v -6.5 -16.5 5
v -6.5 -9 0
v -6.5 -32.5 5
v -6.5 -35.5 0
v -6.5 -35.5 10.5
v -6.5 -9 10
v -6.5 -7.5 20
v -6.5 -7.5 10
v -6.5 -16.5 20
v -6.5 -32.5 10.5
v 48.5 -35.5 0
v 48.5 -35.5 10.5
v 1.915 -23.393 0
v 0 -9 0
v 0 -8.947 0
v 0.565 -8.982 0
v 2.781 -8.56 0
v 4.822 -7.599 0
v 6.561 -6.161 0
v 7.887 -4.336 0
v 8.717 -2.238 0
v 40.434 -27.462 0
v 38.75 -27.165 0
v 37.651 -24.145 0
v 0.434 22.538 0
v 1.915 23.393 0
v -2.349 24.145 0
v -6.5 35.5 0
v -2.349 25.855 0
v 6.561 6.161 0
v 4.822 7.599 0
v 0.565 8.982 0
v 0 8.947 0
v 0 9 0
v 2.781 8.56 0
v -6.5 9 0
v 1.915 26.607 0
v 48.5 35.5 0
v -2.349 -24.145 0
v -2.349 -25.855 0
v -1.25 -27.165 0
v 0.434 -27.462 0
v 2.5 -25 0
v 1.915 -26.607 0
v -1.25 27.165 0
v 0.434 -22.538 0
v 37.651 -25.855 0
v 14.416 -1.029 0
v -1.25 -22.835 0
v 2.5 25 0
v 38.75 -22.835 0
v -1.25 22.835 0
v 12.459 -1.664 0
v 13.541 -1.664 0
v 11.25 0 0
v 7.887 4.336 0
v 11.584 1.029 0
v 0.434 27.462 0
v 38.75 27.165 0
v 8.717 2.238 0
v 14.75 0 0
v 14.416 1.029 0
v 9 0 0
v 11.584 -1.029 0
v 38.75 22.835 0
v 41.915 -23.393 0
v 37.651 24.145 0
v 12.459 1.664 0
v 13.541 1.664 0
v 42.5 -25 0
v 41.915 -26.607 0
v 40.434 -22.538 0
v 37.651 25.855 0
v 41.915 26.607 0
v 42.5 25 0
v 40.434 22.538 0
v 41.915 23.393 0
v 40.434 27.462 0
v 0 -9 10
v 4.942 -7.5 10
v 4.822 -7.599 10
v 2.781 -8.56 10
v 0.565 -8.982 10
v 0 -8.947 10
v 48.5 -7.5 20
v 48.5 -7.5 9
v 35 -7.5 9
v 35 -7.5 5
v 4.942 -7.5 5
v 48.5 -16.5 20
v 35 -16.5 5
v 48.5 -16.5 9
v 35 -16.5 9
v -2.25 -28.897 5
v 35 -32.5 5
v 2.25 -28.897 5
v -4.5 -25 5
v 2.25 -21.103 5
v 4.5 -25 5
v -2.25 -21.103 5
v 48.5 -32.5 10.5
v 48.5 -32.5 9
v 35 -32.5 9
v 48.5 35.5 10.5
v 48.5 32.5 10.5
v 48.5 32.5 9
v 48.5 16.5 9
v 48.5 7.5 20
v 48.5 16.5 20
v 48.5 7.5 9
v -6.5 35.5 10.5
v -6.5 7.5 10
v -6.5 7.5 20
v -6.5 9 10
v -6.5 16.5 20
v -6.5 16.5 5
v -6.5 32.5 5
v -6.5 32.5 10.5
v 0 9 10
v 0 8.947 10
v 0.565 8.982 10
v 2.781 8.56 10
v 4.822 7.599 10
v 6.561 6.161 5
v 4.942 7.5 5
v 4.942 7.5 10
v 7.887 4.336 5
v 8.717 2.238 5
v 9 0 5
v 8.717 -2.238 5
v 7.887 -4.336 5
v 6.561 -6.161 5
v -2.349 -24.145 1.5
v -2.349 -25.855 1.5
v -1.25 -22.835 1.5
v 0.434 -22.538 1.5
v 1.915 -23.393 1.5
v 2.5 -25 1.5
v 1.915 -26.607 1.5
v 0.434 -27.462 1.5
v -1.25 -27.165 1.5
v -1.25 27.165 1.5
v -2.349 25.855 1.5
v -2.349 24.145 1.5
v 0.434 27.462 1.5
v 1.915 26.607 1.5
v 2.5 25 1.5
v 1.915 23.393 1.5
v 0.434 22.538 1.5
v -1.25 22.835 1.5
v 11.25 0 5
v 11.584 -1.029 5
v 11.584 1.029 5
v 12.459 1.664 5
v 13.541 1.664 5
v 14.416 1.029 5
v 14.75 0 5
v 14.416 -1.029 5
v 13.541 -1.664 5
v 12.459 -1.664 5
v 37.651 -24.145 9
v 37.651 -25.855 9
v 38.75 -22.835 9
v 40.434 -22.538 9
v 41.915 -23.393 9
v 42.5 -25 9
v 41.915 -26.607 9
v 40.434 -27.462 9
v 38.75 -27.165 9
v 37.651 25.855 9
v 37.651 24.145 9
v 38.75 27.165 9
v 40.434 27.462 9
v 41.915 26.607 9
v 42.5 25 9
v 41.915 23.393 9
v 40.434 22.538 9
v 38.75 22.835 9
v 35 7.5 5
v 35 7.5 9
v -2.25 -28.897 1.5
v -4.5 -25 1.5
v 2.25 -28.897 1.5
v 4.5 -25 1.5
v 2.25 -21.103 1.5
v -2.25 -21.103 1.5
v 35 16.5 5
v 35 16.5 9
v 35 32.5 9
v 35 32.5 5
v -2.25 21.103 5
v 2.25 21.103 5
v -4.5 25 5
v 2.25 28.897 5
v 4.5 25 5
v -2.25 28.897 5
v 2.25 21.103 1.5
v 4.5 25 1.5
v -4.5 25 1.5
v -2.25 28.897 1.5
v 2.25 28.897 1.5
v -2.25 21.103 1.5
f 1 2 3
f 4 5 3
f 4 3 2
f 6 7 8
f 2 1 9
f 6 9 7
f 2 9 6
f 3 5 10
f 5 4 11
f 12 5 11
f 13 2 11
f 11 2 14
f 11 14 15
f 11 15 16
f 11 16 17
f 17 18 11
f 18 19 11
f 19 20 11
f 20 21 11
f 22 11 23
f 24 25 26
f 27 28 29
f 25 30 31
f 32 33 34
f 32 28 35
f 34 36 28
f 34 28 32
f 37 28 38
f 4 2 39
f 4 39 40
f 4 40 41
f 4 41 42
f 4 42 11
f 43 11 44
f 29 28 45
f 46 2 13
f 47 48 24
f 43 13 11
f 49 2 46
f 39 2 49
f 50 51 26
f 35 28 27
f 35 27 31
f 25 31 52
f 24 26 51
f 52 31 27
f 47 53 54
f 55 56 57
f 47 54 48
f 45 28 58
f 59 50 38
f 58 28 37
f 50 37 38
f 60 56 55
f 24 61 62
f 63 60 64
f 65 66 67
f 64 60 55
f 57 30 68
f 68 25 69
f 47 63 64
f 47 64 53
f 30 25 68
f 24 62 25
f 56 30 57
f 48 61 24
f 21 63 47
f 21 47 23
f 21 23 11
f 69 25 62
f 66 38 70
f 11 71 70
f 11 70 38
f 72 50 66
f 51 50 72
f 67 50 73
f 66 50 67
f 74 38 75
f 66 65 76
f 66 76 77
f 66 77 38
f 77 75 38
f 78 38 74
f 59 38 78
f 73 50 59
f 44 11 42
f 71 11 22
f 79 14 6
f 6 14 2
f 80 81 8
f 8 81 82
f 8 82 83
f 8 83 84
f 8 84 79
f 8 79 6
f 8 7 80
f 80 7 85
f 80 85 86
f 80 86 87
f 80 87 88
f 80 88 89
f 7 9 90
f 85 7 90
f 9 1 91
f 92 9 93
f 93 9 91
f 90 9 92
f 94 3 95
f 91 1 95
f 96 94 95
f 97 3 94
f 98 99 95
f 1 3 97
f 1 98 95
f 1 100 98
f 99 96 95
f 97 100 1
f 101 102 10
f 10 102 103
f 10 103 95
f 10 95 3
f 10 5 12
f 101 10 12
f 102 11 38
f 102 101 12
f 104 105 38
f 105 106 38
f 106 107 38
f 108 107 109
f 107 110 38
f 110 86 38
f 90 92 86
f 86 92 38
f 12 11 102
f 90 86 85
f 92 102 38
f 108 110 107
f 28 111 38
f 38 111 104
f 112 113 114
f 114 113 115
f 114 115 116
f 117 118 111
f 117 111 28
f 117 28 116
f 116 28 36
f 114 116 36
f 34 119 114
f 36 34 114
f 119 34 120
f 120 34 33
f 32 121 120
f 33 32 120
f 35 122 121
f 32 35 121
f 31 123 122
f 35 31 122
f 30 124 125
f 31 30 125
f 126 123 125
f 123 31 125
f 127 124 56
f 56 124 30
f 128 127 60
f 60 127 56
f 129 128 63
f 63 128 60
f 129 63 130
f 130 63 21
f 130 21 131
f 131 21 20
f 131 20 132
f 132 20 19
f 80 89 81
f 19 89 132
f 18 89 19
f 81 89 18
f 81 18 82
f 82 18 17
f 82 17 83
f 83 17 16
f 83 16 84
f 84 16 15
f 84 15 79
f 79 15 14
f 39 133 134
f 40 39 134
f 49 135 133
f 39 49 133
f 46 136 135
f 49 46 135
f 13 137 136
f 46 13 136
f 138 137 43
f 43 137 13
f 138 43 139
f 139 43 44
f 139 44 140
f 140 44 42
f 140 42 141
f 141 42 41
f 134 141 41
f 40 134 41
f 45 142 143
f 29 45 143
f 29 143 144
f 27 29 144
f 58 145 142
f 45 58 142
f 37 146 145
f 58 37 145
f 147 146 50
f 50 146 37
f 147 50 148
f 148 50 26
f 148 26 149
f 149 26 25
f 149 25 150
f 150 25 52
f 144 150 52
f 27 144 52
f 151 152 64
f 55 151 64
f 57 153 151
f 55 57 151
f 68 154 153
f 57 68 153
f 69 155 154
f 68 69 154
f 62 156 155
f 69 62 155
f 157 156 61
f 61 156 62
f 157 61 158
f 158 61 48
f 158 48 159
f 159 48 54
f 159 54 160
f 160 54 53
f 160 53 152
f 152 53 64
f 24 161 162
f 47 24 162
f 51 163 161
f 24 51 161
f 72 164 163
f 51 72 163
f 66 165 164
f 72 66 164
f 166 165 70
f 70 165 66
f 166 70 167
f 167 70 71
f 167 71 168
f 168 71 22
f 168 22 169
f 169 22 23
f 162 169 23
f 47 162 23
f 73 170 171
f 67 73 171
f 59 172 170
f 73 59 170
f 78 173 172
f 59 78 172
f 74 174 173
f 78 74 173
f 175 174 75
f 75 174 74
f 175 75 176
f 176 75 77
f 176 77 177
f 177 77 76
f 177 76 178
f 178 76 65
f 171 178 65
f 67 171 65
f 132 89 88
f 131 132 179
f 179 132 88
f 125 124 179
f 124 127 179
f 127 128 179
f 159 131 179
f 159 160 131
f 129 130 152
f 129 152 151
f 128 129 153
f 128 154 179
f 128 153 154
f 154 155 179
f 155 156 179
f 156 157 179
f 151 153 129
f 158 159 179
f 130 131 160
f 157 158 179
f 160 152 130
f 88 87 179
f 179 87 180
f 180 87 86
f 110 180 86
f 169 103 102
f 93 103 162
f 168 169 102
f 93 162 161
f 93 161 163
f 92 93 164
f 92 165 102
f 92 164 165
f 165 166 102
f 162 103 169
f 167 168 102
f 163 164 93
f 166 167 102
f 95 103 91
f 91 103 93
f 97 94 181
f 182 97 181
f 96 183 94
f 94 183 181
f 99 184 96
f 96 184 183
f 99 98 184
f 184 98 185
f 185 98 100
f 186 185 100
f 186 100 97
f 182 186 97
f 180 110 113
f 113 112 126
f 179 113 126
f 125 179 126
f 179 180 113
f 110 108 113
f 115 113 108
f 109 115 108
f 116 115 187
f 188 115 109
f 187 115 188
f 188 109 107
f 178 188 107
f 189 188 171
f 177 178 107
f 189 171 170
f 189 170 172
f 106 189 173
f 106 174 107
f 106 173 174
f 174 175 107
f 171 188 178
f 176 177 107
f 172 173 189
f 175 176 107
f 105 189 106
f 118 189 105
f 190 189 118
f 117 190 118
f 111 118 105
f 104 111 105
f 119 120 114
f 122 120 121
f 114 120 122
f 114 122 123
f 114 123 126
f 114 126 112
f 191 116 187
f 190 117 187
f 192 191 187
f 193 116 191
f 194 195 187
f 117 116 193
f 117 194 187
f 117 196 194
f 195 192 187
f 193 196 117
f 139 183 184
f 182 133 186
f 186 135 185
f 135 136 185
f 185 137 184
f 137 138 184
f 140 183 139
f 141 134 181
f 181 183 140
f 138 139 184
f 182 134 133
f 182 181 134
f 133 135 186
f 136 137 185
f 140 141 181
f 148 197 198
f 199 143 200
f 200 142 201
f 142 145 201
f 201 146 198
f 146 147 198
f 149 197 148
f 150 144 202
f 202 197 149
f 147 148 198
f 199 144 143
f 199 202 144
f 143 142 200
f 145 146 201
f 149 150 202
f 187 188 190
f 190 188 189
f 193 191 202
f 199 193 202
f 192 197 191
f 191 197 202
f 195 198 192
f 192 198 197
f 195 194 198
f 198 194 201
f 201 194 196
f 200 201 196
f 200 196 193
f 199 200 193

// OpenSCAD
// file: configuration-metric.scad
// PRUSA Mendel  
// Metric Configuration file
// GNU GPL v2
// Josef Průša
// josefprusa@me.com
// prusadjs.cz
// http://www.reprap.org/wiki/Prusa_Mendel
// http://github.com/prusajr/PrusaMendel

// CONFIGURATION FILE FOR METRIC VARIANT OF PRUSA MENDEL

// M8 rod diameter
m8_diameter = 8.4;

// M8 nut diameter diameter
// Used for $fn nut trick -> cylinder(h = 5, r=m8_nut_diameter, $fn=6, center=true);
m8_nut_diameter = 16.4;

// M4 rod/screw diameter
m4_diameter = 5;

// M4 nut diameter
// Used for $fn nut trick -> cylinder(h = 5, r=m4_nut_diameter, $fn=6, center=true);
m4_nut_diameter = 9;

// M3 rod/screw diameter
m3_diameter = 4.4;

// M3 nut diameter diameter
// Used for $fn nut trick -> cylinder(h = 5, r=m3_nut_diameter, $fn=6, center=true);
m3_nut_diameter = 7;

// Bushing holders diameter
bushing_diameter = 11;

//Motor shaft diameter
motor_shaft=5;

//Bushings
	//Size of rod on which it will slide
	bushing_rodsize = 8;
	
	//Size of whole bushings (diameter because the core is cylinder)
	bushing_outerDiameter = 16;
	
	//How long they are going to be
	bushing_lenght = 11;
	
	// TYPE Can generate three versions
	// 1 - regular old ones
	// 2 - helical ones
	// 3 - holders for brass or any other bought bushings
	bushing_type = 2;
// file: bushing.scad
// PRUSA Mendel  
// Bushings
// GNU GPL v2
// Josef Průša
// josefprusa@me.com
// prusadjs.cz
// http://www.reprap.org/wiki/Prusa_Mendel
// http://github.com/prusajr/PrusaMendel

include <configuration.scad>

/**
 * @name Bushing
 * @category Printed
 * @link bushing
 */ 

rodsize = bushing_rodsize;
outerDiameter = bushing_outerDiameter;
lenght = bushing_lenght;
type = bushing_type;


module bushing(stiff, lenght=11){
	difference(){
		union(){
			translate(v=[-7.5,-8,0])cube(size = [15,8,lenght]);
			cylinder(h = lenght, r=7.5);
		}
	//cutout inside
	//Opening
	rotate(a=[0,0,45]) translate(v=[1,1,-1]) cube(size = [16,16,lenght+2]);
	//Cutouts to make it more bendy
	if(stiff){
		translate(v=[-4.8,-6,-1]) cube(size = [0.8,6,lenght+2]);
		translate(v=[4,-6,-1]) cube(size = [0.8,6,lenght+2]);
	}else{
		translate(v=[-4.8,-8,-1]) cube(size = [0.8,8,lenght+2]);
		translate(v=[4,-8,-1]) cube(size = [0.8,8,lenght+2]);
	}
	translate(v=[0,5,(lenght+2)/2]) cube(size = [7,8,lenght+2], center=true);
	translate(v=[0,0,-1]) cylinder(h = lenght+2, r=5);
	}
}
bushing(false, 11);
translate(v=[-7,-11,0])cube(size = [14,3,11]);
// file: configuration.scad
// PRUSA Mendel  
// Configuration file
// GNU GPL v2
// Josef Průša
// josefprusa@me.com
// prusadjs.cz
// http://www.reprap.org/wiki/Prusa_Mendel
// http://github.com/prusajr/PrusaMendel

// PLESE SELECT ONE OF THE CONFIGURATION FILES
// BY UN-COMMENTING IT

// METRIC VERSION
include <configuration-metric.scad>

// IMPERIAL VERSION (TODO, just place holder)
// Spacexula will do it ;-)
// include <configuration-imperial.scad>

// MINI-HUXLEY VERSION (TODO, just place holder)
// include <configuration-huxley.scad>

// MEGA VERSION (TODO, just place holder)
// include <configuration-mega.scad>
// main file
// PRUSA Mendel  
// X-carriage
// Used for sliding on X axis
// GNU GPL v2
// Josef Průša
// josefprusa@me.com
// prusadjs.cz
// http://www.reprap.org/wiki/Prusa_Mendel
// http://github.com/prusajr/PrusaMendel

include <configuration.scad>

/**
 * @id x-carriage
 * @name X carriage
 * @category Printed
 * @using 2 m4nut
 * @using 2 m4x25
 */

snap_in_mount = false;
use <bushing.scad>

module xcarriage(){
union(){
	translate(v = [0,0,2.5]) 
		union(){
			difference(){
				union(){
					//Base block
						cube(size = [65,70,5], center = true);
						translate(v = [0, -31, 0]) cylinder(h = 5, r=m4_nut_diameter/2+2, $fn=6, center=true);	
					//Nut holder base - extruder

					//Nut holder base - belt clamps
						translate(v = [23-(7.5/2)+5, -18, 0]) cube(size = [45-7.5+10,15,5], center = true);
						translate(v = [(33+45/2-7.5), -18, 0]) cylinder(h = 5, r=7.5, $fn=18, center=true);
					//Nut holder base - belt clamps
						translate(v = [23-(7.5/2)+5, 18, 0]) cube(size = [45-7.5+10,15,5], center = true);
						translate(v = [(33+45/2-7.5), 18, 0]) cylinder(h = 5, r=7.5, $fn=18, center=true);
				}
				// holes for connecting extruder
				// SNAP IN MOUNT
				if(snap_in_mount){
					// Hotend hole
					translate(v = [0, -6, 0]) cylinder(h = 20, r=6, $fn=20, center=true);
					translate(v = [0, -6, 3]) cylinder(h = 2, r=8, $fn=20, center=true);
					translate(v = [0, 0, 3]) cube(size = [16,12,2], center = true);
					//translate(v = [0, -6, -5]) %cylinder(h = 2, r=8, $fn=20, center=true);

					translate(v = [0, 0, 0]) cube(size = [12,12,15], center = true);
					translate(v = [0, 8, 0]) cube(size = [16,16,15], center = true);
					translate(v = [0, 16, 0]) cylinder(h = 20, r=8, $fn=20, center=true);

					//cutouts for clips
					translate(v = [0, -4.5, 0]) translate(v = [-13, 6, 0]) cube(size = [4,45,15], center = true);
					translate(v = [0, -4.5, 0]) translate(v = [13, 6, 0]) cube(size = [4,45,15], center = true);
		
					//bigger oepening
					translate(v = [0, -4.5+12.5, 0]) translate(v = [-15.5, 6, 0]) cube(size = [9,20,15], center = true);
					translate(v = [0, -4.5+12.5, 0]) translate(v = [15.5, 6, 0]) cube(size = [9,20,15], center = true);
		
		
					translate(v = [0, -4.5+9.5, 0]) translate(v = [-15.5, 6, 6.5]) rotate(a=[-20,0,0])  cube(size = [9,20,15], center = true);
					translate(v = [0, -4.5+9.5, 0]) translate(v = [15.5, 6, 6.5]) rotate(a=[-20,0,0]) cube(size = [9,20,15], center = true);
		
					translate(v = [0, -4.5-12.5, 0]) translate(v = [-18, 6, 3.5]) cube(size = [4,20,3], center = true);
					translate(v = [0, -4.5-12.5, 0]) translate(v = [18, 6, 3.5]) cube(size = [4,20,3], center = true);
				
					//SNAP IN MOUNT END
				}else{
					//NORMAL MOUNT
		
					translate(v = [0, -31, 2]) cylinder(h = 10, r=m4_diameter/2, $fn=9, center=true);		
					translate(v = [0, -31, 5]) cylinder(h = 9, r=m4_nut_diameter/2, $fn=6, center=true);		
					translate(v = [0, 19, ]) cylinder(h = 20, r=m4_diameter/2, $fn=9, center=true);
					translate(v = [0, 19, 5]) cylinder(h = 9, r=4.5, $fn=6, center=true);	
		
					// Hotend hole
					translate(v = [0, -6, 0]) cylinder(h = 20, r=21, $fn=20, center=true);
		
					//NORMAL MOUNT END
				}
				//ZIPTIE holes for connecting belt
				//translate(v = [38, -18, 2]) cube(size = [5,3.5,30], center = true);

				//belt clamp holes
					translate(v = [30, -18, 2]) cylinder(h = 10, r=m3_diameter/2, $fn=9, center=true);
				translate(v = [30, -18, 5]) cylinder(h = 9, r=m3_nut_diameter/2, $fn=6, center=true);
					translate(v = [48, -18, 2]) cylinder(h = 10, r=m3_diameter/2, $fn=9, center=true);		
				translate(v = [48, -18, 5]) cylinder(h = 9, r=m3_nut_diameter/2, $fn=6, center=true);

				translate(v = [30, 18, 2]) cylinder(h = 10, r=m3_diameter/2, $fn=9, center=true);
				translate(v = [30, 18, 5]) cylinder(h = 9, r=m3_nut_diameter/2, $fn=6, center=true);
				translate(v = [48, 18, 2]) cylinder(h = 10, r=m3_diameter/2, $fn=9, center=true);
				translate(v = [48, 18, 5]) cylinder(h = 9, r=m3_nut_diameter/2, $fn=6, center=true);

			}

	}

}
}


//rotate(a=[0,180,0])translate(v = [0, 6, 0]) #xcarriage();
difference(){
union(){
//loadcell
translate(v = [21, -25, 6.5+5+4]) %cube(size = [55,13,13], center = true);
translate(v = [21, 25, 6.5+5+4]) %cube(size = [55,13,13], center = true);

// base
translate(v = [21, 0, 2.5]) cube(size = [55,71,5], center = true);
//loadcell standoffs
translate(v = [40, 0, 4.5]) cube(size = [10,65,9], center = true);

translate(v = [43.5, 0, 4.5]) cube(size = [10,65,9], center = true);

//fins
translate(v = [21, 23 - 6.5 -2.5 - 2, +5+4+2]) cube(size = [55,9,18], center = true);

translate(v = [21, 45 - 6.5 -2.5 - 2, +5+2]) cube(size = [55,3,7], center = true);
translate(v = [21, -45 + 6.5 +2.5 + 2, +5+2]) cube(size = [55,3,7], center = true);
translate(v = [21, -23 + 6.5 +2.5 + 2, +5+4+2]) cube(size = [55,9,18], center = true);

}//union end
//hotend
translate(v = [13, 0, 0])cylinder(h = 20, r=3.5/2, $fn=10, center=true);

cylinder(h = 20, r=18/2, $fn=25, center=true);
translate(v = [-12.5, 0, 0])cube(size = [25,18,20], center = true);

translate(v = [0, 0, 5])cylinder(h = 0.5, r=17/2, $fn=35, center=true);
translate(v = [-12.5, 0, 5])cube(size = [25,17,0.5], center = true);

translate(v = [0, -25, 5]) cylinder(h = 10, r=m4_diameter/2, $fn=9, center=true);		
translate(v = [0, -25, 6]) cylinder(h = 9, r=m4_nut_diameter/2, $fn=6, center=true);		
translate(v = [0, 25, 5]) cylinder(h = 20, r=m4_diameter/2, $fn=9, center=true);
translate(v = [0, 25, 6]) cylinder(h = 9, r=4.5, $fn=6, center=true);

translate(v = [40, -25, 5]) cylinder(h = 10, r=m4_diameter/2, $fn=9, center=true);		
translate(v = [40, 25, 5]) cylinder(h = 20, r=m4_diameter/2, $fn=9, center=true);

}
